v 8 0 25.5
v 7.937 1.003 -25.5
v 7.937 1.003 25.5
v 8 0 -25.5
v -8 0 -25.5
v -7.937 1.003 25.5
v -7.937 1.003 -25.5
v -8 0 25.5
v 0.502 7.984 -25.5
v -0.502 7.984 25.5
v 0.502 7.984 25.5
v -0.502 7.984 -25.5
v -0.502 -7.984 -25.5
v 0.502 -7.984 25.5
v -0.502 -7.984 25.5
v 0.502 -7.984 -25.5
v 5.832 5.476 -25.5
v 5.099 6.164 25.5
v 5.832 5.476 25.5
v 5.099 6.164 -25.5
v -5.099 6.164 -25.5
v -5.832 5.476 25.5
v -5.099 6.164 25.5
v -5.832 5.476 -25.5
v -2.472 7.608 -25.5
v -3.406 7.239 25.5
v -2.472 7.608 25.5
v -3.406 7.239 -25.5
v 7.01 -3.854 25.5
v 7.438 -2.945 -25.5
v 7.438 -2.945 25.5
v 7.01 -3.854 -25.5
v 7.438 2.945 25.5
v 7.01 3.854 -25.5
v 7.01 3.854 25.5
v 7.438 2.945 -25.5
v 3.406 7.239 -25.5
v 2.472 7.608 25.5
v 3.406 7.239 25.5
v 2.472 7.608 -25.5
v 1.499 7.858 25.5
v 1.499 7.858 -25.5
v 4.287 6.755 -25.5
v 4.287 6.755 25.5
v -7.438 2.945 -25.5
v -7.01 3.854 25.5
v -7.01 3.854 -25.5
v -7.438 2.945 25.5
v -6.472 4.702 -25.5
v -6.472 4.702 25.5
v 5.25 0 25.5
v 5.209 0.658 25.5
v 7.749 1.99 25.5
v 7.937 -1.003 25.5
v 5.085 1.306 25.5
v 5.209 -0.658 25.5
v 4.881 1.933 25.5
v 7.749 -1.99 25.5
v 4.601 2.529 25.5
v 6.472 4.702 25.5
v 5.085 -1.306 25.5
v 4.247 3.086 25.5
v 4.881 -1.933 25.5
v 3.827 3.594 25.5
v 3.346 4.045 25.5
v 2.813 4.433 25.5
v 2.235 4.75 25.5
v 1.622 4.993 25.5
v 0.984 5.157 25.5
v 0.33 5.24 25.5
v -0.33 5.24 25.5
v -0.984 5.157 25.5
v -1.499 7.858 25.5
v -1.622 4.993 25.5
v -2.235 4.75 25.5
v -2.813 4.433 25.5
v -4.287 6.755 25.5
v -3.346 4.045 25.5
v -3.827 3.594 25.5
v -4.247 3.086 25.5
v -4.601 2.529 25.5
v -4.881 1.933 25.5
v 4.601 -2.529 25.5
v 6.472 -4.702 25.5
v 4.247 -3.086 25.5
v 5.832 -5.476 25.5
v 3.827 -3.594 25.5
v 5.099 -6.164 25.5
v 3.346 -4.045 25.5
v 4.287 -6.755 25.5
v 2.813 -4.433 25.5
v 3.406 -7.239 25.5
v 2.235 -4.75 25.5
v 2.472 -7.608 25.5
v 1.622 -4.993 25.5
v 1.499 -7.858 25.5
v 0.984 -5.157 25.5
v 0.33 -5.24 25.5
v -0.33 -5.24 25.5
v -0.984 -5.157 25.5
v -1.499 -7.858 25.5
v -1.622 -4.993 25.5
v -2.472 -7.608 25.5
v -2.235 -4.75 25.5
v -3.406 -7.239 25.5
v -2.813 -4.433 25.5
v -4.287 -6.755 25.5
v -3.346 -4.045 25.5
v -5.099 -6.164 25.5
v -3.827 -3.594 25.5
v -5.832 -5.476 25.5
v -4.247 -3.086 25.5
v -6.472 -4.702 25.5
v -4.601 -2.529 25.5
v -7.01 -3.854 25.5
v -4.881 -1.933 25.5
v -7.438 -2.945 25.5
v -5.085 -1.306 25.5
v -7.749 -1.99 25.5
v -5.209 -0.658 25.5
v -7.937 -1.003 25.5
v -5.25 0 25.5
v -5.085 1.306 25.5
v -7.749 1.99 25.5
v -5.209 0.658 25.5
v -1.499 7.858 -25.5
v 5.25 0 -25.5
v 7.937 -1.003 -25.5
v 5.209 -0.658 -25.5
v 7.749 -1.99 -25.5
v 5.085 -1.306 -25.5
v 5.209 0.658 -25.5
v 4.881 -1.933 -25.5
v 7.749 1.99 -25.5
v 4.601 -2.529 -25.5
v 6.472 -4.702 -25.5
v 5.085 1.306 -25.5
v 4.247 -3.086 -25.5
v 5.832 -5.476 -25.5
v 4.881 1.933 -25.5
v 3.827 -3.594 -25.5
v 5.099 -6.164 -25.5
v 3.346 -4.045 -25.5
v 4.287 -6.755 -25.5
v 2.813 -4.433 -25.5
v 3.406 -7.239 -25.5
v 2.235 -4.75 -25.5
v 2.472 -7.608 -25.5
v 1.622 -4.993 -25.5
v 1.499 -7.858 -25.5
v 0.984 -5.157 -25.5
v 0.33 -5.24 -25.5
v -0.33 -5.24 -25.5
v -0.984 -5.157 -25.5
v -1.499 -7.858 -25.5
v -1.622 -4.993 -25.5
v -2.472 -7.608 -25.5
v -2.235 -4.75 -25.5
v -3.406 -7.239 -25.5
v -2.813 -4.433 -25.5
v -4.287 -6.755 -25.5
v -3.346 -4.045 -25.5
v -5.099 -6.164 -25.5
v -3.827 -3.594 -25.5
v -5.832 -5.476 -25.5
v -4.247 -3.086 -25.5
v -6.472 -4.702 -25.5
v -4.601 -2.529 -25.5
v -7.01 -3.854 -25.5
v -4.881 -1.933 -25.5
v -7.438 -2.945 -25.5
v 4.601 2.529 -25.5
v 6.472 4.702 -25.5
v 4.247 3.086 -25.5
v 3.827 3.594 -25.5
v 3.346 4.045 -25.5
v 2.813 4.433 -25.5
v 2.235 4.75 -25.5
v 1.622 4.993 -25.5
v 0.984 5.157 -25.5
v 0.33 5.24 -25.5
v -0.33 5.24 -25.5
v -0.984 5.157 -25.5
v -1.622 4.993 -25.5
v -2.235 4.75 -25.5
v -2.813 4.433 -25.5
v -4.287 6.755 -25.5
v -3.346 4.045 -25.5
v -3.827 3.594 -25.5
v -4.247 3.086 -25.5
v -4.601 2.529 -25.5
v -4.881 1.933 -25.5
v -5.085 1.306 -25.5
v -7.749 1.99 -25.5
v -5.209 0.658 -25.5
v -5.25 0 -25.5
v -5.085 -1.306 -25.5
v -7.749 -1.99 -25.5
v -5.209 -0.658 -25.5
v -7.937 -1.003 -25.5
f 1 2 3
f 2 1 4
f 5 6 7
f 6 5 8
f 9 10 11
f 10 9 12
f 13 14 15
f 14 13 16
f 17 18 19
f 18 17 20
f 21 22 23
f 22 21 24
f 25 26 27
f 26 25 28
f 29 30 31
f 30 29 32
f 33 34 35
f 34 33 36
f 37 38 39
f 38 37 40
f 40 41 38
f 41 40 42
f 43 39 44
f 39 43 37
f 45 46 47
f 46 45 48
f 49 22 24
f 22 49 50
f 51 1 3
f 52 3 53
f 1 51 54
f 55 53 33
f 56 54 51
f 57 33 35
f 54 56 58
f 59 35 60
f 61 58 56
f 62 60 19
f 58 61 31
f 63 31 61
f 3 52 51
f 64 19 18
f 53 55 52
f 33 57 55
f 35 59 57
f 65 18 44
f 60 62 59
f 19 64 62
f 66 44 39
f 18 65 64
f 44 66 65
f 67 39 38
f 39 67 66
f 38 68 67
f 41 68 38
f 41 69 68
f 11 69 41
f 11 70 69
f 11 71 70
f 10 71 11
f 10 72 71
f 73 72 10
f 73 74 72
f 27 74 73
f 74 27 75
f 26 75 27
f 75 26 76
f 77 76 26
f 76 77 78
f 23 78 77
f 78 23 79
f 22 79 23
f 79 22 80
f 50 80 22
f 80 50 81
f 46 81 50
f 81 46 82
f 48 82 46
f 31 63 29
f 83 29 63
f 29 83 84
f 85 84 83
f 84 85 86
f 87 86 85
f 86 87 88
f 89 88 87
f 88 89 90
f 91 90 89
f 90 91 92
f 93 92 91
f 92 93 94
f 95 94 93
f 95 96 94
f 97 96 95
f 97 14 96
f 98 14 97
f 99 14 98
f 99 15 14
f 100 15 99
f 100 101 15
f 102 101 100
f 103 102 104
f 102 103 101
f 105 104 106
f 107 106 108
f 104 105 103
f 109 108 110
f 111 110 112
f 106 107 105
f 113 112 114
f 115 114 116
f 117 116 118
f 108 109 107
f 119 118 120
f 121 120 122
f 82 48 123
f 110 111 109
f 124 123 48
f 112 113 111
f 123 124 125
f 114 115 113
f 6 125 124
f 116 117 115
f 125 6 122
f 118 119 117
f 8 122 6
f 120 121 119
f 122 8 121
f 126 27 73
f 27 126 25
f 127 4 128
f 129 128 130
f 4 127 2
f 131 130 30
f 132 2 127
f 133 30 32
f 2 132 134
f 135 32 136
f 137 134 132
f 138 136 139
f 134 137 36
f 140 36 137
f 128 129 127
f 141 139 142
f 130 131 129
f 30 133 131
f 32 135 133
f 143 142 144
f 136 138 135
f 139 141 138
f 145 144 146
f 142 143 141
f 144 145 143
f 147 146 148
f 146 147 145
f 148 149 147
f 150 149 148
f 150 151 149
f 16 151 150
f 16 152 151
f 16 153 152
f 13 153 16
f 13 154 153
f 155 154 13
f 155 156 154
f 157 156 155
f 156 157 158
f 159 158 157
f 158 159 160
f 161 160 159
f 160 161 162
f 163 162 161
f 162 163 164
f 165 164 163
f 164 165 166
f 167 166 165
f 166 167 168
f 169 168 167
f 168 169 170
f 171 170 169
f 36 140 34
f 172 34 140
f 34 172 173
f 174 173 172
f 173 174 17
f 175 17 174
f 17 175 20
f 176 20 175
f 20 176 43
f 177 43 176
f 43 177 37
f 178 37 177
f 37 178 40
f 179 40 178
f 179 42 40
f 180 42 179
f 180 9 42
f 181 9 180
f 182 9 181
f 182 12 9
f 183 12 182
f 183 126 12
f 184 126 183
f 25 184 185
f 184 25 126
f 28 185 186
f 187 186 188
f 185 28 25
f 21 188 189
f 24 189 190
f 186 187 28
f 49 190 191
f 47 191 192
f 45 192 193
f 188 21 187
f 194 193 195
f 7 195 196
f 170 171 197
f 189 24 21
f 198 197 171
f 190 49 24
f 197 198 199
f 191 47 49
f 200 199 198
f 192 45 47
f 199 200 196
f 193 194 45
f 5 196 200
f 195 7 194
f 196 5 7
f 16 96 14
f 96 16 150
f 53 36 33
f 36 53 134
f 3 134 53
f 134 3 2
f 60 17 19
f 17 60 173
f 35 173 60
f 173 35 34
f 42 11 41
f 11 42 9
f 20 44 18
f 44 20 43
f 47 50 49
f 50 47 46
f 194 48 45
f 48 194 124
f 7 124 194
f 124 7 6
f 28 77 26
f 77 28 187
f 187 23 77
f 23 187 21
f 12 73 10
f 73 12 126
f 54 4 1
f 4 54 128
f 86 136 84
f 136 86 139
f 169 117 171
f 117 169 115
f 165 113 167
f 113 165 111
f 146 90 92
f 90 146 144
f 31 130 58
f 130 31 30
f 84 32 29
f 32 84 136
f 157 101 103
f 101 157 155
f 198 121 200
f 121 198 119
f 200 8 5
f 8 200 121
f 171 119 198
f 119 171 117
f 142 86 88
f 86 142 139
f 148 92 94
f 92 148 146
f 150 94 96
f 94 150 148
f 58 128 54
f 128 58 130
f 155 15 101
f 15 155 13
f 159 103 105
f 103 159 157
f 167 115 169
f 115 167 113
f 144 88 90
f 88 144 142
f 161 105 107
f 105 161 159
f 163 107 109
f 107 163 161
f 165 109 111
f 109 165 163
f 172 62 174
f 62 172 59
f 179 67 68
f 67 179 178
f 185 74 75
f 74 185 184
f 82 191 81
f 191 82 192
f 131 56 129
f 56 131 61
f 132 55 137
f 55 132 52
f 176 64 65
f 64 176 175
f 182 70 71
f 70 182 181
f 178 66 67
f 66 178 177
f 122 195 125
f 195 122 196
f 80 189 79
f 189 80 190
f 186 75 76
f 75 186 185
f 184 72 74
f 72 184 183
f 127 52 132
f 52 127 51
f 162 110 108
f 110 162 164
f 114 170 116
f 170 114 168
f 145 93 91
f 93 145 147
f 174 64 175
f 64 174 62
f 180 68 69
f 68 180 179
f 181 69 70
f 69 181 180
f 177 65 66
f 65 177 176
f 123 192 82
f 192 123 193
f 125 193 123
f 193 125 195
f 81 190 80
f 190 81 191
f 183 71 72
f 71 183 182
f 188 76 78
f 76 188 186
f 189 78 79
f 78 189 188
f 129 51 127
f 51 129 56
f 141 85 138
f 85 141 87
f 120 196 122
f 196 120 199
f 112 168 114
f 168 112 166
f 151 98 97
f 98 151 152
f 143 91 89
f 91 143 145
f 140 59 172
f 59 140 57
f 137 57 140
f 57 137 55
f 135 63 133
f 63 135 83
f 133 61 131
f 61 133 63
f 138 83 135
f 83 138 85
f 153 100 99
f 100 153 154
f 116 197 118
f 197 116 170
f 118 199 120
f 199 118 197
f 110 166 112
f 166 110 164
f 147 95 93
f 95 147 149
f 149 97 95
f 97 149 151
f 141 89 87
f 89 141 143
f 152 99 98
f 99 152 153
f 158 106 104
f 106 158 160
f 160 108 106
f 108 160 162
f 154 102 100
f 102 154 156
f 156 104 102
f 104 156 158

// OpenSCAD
$fn = 50;


difference() {
	union() {
		translate(v = [0, 0, -25.5000000000]) {
			cylinder(h = 51, r = 8.0000000000);
		}
	}
	union() {
		translate(v = [0, 0, -100.0000000000]) {
			cylinder(h = 200, r = 5.2500000000);
		}
	}
}
